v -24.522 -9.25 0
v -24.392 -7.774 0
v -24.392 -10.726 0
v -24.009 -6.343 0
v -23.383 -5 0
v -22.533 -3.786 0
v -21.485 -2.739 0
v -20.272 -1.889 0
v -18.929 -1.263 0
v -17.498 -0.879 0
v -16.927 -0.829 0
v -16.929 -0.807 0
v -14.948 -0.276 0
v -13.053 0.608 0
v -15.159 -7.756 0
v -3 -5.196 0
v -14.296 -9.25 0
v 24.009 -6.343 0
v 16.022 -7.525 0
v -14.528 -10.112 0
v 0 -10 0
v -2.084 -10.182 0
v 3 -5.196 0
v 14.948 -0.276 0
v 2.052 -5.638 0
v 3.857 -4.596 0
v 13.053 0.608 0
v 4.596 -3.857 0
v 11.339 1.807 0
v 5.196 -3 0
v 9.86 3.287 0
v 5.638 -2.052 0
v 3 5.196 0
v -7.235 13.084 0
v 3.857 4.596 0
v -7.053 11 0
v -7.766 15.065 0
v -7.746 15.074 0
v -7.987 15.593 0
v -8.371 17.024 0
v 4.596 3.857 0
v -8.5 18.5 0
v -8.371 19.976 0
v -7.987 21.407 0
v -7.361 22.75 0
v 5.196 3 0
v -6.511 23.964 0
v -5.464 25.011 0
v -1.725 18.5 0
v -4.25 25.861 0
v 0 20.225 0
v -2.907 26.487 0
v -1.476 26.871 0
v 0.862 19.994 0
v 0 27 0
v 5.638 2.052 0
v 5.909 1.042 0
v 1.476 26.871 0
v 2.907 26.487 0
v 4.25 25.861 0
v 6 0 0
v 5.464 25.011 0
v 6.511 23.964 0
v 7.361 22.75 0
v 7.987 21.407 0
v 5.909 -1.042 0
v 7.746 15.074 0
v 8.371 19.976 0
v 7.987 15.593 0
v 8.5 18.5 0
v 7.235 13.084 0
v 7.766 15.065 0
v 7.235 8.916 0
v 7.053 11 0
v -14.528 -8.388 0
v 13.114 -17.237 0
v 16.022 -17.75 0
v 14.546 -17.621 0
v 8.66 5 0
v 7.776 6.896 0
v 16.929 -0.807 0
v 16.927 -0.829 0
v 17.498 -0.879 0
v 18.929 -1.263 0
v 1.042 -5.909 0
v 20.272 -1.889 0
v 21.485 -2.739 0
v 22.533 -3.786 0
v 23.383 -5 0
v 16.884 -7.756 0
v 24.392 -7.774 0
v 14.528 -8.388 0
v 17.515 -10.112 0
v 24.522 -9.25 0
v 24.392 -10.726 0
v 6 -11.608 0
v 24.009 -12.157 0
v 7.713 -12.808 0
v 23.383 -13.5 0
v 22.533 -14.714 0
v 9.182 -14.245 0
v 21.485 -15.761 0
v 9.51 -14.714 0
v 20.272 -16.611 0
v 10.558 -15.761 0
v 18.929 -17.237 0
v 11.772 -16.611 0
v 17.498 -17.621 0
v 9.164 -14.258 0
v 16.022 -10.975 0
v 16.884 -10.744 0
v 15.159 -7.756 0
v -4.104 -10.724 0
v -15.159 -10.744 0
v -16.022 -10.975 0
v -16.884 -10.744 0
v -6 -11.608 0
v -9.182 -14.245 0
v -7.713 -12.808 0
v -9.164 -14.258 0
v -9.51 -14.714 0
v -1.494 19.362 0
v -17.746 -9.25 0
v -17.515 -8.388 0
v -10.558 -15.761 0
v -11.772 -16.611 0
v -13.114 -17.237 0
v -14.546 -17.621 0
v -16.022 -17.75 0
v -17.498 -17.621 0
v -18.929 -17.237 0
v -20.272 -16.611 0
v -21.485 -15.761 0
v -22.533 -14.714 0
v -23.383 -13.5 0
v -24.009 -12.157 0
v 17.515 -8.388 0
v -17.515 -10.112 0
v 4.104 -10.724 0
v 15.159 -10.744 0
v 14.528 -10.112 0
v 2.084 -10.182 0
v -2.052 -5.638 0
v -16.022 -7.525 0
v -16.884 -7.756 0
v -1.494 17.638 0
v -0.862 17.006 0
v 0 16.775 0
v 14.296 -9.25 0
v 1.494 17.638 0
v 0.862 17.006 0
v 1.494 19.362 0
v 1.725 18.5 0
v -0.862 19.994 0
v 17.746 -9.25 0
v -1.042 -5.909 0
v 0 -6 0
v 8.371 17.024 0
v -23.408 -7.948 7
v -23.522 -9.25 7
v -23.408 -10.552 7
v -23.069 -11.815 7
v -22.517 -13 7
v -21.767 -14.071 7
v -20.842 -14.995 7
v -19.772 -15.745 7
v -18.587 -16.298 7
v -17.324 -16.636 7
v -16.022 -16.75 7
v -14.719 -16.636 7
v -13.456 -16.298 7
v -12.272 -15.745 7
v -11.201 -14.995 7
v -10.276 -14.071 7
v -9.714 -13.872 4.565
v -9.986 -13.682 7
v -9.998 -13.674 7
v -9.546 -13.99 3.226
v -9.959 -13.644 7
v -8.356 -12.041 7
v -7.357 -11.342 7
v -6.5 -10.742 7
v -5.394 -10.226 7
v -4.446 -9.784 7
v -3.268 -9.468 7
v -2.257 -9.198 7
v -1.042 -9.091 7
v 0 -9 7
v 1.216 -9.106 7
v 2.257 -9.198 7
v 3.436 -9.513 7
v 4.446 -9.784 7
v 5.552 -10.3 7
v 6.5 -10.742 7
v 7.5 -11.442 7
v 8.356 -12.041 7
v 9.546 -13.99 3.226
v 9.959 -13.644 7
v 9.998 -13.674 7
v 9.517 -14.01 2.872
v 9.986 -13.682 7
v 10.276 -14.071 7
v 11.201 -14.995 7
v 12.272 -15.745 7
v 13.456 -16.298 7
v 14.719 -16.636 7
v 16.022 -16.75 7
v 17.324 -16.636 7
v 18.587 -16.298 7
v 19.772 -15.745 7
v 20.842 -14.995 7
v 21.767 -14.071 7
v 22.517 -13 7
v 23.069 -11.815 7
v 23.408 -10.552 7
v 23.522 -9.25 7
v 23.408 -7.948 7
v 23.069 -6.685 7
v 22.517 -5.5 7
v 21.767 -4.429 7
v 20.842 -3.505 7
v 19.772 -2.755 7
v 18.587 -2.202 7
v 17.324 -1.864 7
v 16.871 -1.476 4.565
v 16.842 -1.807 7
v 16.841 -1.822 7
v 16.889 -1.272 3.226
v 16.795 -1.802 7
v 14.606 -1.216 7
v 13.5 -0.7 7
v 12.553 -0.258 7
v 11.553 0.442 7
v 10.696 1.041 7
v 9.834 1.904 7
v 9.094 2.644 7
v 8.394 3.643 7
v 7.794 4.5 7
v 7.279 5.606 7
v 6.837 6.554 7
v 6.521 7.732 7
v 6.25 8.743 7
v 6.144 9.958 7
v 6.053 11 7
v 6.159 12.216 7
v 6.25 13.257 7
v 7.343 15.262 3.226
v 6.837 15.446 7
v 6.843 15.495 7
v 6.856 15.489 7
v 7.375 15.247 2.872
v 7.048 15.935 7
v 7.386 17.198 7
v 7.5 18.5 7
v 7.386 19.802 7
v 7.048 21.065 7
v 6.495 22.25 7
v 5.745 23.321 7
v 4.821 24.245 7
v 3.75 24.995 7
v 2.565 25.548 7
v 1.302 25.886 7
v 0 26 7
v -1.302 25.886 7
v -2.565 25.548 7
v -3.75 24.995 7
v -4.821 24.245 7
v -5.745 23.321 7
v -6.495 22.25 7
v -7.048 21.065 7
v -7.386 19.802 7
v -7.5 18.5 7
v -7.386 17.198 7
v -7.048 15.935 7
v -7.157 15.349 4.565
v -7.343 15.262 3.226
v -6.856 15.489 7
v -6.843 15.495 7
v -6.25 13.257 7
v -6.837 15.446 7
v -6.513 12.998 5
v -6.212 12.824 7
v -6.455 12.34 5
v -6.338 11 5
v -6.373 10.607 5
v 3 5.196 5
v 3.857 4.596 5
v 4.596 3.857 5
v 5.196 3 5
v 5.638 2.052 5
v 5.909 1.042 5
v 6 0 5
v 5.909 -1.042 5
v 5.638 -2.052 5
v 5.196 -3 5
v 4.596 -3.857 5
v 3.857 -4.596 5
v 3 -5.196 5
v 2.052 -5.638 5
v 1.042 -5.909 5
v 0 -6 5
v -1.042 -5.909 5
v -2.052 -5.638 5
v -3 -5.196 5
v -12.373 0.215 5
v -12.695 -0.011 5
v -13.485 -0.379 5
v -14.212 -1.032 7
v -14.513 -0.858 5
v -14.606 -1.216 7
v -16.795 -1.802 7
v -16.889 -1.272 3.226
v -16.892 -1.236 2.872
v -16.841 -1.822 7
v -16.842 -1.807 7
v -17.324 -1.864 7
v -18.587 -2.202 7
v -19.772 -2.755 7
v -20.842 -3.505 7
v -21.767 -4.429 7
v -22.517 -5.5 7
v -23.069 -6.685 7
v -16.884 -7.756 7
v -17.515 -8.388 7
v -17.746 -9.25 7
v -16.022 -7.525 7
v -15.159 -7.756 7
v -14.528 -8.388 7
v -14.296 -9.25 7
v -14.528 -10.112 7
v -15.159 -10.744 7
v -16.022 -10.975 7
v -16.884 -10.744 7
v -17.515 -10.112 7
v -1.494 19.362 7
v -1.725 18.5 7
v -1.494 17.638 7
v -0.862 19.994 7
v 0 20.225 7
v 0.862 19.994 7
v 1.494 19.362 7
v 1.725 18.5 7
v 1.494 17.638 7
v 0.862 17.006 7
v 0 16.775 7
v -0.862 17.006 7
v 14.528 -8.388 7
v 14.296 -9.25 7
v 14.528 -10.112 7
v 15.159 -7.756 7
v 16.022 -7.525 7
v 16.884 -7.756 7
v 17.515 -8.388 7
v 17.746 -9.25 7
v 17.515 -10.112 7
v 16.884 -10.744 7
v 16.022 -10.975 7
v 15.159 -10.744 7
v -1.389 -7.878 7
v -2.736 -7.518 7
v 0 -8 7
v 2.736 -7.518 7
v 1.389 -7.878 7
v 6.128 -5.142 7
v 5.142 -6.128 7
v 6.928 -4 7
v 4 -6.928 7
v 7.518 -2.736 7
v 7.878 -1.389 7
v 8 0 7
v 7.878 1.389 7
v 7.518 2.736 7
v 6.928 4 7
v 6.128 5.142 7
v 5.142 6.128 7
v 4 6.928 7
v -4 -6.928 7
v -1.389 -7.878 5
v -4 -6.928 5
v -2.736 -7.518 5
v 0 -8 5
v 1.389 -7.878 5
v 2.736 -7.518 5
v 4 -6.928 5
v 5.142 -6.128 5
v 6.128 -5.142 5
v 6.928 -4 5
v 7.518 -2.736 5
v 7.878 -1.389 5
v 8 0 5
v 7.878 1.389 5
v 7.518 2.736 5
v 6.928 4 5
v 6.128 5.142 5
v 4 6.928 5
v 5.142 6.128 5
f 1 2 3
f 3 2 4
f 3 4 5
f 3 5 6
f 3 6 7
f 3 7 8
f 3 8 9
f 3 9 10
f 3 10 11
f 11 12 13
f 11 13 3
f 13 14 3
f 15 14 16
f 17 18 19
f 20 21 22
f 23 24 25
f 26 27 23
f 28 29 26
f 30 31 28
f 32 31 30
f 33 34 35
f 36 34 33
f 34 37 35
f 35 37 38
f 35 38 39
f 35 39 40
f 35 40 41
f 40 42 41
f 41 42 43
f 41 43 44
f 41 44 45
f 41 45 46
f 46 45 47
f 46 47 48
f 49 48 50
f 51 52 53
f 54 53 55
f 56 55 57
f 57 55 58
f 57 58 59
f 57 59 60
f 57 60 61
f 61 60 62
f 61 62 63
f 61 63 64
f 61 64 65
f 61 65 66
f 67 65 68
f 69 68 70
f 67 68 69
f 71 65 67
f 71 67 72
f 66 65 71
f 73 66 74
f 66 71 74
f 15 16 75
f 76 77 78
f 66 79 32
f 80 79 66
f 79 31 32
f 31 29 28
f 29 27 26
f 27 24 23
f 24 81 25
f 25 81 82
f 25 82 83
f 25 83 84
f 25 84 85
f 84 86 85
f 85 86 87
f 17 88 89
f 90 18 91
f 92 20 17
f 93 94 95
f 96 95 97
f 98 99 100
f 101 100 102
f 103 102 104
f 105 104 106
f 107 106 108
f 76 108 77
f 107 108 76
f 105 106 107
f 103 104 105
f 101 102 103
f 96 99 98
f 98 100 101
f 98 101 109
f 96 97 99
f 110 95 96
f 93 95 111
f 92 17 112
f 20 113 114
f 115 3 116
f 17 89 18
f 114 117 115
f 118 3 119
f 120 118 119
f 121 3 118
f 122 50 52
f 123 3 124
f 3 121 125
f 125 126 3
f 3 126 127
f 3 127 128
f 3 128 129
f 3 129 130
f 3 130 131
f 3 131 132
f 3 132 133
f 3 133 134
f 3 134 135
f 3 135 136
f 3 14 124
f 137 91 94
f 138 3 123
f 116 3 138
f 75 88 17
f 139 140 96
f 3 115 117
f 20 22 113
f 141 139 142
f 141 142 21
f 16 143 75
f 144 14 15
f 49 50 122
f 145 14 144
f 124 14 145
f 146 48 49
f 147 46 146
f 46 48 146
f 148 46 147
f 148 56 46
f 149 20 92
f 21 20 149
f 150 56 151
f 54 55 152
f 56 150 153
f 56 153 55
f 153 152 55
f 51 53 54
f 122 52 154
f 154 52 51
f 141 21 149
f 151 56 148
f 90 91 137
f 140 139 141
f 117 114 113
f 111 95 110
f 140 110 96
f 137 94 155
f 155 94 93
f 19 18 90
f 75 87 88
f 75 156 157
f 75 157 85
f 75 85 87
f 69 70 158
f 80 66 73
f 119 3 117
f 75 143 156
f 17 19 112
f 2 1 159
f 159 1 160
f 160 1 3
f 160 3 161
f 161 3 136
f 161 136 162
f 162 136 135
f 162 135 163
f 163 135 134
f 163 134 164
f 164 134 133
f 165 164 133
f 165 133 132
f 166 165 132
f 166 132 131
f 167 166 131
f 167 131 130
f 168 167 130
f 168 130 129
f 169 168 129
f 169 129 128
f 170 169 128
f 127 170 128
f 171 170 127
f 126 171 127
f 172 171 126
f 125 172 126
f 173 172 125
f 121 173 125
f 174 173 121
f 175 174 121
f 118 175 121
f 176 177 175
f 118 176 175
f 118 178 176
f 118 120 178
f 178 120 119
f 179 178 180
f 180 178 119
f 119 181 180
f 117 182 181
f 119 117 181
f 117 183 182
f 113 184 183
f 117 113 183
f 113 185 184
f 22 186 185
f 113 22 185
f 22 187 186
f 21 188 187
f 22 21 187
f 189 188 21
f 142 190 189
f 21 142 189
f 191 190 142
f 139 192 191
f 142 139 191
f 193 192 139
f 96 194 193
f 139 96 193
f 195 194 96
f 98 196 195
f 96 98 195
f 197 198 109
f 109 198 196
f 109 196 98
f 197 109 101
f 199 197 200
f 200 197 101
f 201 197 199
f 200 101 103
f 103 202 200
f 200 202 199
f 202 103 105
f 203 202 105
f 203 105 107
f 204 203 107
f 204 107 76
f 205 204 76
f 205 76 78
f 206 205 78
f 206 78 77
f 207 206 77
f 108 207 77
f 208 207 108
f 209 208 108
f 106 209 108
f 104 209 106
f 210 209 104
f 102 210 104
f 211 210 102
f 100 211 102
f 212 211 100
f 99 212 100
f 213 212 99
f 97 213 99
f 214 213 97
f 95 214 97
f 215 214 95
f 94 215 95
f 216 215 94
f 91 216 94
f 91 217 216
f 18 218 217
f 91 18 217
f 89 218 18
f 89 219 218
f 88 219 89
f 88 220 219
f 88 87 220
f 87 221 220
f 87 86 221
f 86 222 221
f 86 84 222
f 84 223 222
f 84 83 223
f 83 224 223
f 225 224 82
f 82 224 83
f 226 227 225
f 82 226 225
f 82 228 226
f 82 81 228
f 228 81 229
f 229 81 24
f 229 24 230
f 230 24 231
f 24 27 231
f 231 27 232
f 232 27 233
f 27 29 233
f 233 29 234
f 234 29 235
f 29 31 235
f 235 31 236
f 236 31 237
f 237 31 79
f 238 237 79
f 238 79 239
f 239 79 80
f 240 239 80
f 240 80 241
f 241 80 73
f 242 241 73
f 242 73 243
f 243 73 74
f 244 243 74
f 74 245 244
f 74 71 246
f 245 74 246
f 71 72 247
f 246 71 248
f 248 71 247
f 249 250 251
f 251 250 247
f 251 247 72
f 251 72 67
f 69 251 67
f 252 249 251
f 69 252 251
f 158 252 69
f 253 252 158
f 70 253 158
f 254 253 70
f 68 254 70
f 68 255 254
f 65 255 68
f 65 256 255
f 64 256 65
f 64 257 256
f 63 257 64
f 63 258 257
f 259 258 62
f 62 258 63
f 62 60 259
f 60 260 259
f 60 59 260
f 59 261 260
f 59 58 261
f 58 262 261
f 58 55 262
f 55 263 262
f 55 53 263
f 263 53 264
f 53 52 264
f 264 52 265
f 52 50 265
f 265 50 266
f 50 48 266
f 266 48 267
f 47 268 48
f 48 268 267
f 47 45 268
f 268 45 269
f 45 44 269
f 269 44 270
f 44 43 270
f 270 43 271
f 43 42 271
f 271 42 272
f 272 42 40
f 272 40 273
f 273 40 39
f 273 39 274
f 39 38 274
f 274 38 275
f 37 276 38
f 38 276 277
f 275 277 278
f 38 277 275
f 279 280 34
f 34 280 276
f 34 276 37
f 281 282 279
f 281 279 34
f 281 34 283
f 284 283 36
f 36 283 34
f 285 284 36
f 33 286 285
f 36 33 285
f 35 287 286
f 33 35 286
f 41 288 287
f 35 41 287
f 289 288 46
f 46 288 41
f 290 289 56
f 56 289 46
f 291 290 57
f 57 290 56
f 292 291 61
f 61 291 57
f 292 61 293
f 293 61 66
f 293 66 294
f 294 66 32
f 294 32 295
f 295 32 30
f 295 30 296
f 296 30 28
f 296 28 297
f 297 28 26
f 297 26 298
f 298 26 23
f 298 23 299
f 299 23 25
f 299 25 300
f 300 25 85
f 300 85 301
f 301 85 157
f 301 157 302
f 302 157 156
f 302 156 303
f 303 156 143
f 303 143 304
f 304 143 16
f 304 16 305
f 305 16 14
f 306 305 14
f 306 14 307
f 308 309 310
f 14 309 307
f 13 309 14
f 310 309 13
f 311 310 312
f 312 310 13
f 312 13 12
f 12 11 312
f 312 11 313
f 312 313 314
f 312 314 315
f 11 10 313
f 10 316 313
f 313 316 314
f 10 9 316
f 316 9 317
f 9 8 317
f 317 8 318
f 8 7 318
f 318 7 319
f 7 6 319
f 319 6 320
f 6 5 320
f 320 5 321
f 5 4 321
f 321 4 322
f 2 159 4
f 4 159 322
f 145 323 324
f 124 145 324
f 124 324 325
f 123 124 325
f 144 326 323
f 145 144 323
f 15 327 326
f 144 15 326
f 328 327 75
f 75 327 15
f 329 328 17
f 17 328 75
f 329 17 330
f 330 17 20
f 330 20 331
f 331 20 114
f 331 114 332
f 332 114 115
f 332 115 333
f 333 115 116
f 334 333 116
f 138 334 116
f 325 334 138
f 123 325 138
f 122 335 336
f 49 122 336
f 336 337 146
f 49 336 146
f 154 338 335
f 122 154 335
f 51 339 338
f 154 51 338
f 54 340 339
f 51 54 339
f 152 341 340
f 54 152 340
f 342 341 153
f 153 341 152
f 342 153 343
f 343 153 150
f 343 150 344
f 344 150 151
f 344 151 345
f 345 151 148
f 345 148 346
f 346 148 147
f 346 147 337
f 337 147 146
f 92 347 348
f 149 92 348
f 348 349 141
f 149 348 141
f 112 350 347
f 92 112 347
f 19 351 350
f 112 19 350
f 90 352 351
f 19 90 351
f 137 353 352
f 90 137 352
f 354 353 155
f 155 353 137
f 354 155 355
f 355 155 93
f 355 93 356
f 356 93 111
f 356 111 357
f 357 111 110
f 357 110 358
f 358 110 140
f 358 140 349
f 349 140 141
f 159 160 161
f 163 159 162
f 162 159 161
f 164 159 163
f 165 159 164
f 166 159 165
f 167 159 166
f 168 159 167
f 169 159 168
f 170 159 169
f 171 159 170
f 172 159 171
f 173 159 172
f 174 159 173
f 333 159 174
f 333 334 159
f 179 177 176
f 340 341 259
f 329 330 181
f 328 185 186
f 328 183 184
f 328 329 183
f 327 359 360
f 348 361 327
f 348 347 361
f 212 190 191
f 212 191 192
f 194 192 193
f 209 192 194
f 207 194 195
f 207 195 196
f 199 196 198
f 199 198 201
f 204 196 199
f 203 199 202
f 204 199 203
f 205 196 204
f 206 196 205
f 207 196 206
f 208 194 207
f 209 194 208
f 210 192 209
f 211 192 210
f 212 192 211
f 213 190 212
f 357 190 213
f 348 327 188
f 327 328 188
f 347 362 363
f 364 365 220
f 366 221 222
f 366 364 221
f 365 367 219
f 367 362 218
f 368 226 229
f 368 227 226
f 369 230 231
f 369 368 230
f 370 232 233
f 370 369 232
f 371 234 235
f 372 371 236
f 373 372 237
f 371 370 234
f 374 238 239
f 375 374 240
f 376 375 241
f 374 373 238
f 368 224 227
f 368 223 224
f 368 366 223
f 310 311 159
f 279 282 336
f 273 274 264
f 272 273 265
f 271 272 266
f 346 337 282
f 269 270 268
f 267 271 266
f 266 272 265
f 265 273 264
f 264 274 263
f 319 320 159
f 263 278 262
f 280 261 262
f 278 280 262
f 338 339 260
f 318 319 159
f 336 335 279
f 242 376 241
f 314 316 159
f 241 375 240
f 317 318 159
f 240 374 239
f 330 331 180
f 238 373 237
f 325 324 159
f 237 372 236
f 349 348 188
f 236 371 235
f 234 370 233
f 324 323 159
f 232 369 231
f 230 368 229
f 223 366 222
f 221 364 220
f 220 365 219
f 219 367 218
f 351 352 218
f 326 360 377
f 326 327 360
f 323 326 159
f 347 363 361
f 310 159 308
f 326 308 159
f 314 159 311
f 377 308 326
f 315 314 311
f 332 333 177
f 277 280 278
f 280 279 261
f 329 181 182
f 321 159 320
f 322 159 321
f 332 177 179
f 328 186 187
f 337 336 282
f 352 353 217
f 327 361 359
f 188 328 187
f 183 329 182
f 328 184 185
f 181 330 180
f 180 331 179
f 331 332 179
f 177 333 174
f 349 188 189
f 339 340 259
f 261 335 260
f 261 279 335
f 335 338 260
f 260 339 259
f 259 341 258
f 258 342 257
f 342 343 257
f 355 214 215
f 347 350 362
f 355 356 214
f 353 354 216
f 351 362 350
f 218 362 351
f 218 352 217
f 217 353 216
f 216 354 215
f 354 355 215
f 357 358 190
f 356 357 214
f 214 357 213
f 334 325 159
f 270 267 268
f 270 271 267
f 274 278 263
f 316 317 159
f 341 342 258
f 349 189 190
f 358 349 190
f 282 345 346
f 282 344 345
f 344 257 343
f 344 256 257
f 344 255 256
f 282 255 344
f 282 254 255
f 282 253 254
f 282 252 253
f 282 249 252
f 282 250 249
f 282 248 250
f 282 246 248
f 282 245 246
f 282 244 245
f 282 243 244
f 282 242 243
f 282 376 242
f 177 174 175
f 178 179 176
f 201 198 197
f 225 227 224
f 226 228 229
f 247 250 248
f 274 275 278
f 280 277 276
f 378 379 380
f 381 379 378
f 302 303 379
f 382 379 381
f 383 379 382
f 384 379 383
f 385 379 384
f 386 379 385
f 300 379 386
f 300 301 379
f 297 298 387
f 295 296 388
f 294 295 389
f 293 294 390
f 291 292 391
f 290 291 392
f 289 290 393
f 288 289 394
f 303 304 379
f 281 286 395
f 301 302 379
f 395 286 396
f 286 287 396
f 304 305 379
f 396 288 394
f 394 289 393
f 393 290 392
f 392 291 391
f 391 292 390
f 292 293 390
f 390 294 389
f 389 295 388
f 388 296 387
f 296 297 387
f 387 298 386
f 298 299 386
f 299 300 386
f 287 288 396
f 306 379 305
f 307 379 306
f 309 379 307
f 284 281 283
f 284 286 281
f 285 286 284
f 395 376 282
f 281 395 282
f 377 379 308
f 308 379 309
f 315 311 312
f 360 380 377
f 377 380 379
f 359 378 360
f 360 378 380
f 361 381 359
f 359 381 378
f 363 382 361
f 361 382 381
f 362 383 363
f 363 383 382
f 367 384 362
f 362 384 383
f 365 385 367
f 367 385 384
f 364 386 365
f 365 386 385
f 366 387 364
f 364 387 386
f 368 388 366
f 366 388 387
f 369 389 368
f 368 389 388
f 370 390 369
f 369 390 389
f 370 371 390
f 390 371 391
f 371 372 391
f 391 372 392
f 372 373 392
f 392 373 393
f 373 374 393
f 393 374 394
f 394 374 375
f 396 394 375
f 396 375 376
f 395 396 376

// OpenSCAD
// file: configuration.scad
// Increase this if your slicer or printer make holes too tight.
extra_radius = 0.1;

// OD = outside diameter, corner to corner.
m3_nut_od = 6.1;
m3_nut_radius = m3_nut_od/2 + 0.2 + extra_radius;

// Major diameter of metric 3mm thread.
m3_major = 2.85;
m3_radius = m3_major/2 + extra_radius;
m3_wide_radius = m3_major/2 + extra_radius + 0.2;

// OD = outside diameter, corner to corner.
m5_nut_od = 8.1;
m5_nut_radius = m5_nut_od/2 + 0.2 + extra_radius;

// Major diameter of metric 5mm thread.
m5_major = 4.85;
m5_radius = m5_major/2 + extra_radius;
m5_wide_radius = m5_major/2 + extra_radius + 0.2;

// NEMA17 stepper motors.
motor_shaft_diameter = 5;
motor_shaft_radius = motor_shaft_diameter/2 + extra_radius;

// Frame brackets. M3x8mm screws work best with 3.6 mm brackets.
thickness = 3.6;

// OpenBeam or Misumi. Currently only 15x15 mm, but there is a plan
// to make models more parametric and allow 20x20 mm in the future.
extrusion = 15;
// main file
include <configuration.scad>;

separation = 44;  // Distance between ball joint mounting faces.
offset = 22;  // Same as DELTA_EFFECTOR_OFFSET in Marlin.
mount_radius = 18.5;  // Hotend mounting screws, standard would be 25mm.
jhead_od_radius = 8;  // Hole for the hotend (J-Head diameter is 16mm).
jhead_id_radius = 6;
height = 7;
jhead_height=5;
mount_height=31;


module mount() {
  difference() {
    union() {
		cylinder(r=offset-5, h=height, center=true, $fn=36);
		
		for (a = [0:120:359]) rotate([0, 0, a]) {
      	translate([0, mount_radius, 0])	cylinder(r1=8.5,r2=7.5, h=height, center=true, $fn=36);
    		}
		   
    }

	 for (a = [0:120:359]) rotate([0, 0, a]) {
      translate([0, mount_radius, 0])
			cylinder(r=m3_wide_radius, h=2*mount_height+height, center=true, $fn=12);
    }

    translate([0, 0, -height/2])cylinder(r=jhead_id_radius, h=height, $fn=36); 
    translate([0, 0, 1.5])cylinder(r=jhead_od_radius, h=2, $fn=36);

	 rotate([0, 0, 60])translate([0,offset/2,-1])
			cube([jhead_id_radius*2,offset,jhead_height],center=true);
	 rotate([0, 0, 60])translate([0,offset/2,2.5])
			cube ([jhead_od_radius*2,offset,2],center=true);


    for (a = [60:120:359]) rotate([0, 0, a]) {
      translate([0, offset, height/2])	cylinder(r1=12,r2=14, h=2*height, center=true, $fn=36);
    }

  }
}

translate([0, 0, height/2]) mount();
